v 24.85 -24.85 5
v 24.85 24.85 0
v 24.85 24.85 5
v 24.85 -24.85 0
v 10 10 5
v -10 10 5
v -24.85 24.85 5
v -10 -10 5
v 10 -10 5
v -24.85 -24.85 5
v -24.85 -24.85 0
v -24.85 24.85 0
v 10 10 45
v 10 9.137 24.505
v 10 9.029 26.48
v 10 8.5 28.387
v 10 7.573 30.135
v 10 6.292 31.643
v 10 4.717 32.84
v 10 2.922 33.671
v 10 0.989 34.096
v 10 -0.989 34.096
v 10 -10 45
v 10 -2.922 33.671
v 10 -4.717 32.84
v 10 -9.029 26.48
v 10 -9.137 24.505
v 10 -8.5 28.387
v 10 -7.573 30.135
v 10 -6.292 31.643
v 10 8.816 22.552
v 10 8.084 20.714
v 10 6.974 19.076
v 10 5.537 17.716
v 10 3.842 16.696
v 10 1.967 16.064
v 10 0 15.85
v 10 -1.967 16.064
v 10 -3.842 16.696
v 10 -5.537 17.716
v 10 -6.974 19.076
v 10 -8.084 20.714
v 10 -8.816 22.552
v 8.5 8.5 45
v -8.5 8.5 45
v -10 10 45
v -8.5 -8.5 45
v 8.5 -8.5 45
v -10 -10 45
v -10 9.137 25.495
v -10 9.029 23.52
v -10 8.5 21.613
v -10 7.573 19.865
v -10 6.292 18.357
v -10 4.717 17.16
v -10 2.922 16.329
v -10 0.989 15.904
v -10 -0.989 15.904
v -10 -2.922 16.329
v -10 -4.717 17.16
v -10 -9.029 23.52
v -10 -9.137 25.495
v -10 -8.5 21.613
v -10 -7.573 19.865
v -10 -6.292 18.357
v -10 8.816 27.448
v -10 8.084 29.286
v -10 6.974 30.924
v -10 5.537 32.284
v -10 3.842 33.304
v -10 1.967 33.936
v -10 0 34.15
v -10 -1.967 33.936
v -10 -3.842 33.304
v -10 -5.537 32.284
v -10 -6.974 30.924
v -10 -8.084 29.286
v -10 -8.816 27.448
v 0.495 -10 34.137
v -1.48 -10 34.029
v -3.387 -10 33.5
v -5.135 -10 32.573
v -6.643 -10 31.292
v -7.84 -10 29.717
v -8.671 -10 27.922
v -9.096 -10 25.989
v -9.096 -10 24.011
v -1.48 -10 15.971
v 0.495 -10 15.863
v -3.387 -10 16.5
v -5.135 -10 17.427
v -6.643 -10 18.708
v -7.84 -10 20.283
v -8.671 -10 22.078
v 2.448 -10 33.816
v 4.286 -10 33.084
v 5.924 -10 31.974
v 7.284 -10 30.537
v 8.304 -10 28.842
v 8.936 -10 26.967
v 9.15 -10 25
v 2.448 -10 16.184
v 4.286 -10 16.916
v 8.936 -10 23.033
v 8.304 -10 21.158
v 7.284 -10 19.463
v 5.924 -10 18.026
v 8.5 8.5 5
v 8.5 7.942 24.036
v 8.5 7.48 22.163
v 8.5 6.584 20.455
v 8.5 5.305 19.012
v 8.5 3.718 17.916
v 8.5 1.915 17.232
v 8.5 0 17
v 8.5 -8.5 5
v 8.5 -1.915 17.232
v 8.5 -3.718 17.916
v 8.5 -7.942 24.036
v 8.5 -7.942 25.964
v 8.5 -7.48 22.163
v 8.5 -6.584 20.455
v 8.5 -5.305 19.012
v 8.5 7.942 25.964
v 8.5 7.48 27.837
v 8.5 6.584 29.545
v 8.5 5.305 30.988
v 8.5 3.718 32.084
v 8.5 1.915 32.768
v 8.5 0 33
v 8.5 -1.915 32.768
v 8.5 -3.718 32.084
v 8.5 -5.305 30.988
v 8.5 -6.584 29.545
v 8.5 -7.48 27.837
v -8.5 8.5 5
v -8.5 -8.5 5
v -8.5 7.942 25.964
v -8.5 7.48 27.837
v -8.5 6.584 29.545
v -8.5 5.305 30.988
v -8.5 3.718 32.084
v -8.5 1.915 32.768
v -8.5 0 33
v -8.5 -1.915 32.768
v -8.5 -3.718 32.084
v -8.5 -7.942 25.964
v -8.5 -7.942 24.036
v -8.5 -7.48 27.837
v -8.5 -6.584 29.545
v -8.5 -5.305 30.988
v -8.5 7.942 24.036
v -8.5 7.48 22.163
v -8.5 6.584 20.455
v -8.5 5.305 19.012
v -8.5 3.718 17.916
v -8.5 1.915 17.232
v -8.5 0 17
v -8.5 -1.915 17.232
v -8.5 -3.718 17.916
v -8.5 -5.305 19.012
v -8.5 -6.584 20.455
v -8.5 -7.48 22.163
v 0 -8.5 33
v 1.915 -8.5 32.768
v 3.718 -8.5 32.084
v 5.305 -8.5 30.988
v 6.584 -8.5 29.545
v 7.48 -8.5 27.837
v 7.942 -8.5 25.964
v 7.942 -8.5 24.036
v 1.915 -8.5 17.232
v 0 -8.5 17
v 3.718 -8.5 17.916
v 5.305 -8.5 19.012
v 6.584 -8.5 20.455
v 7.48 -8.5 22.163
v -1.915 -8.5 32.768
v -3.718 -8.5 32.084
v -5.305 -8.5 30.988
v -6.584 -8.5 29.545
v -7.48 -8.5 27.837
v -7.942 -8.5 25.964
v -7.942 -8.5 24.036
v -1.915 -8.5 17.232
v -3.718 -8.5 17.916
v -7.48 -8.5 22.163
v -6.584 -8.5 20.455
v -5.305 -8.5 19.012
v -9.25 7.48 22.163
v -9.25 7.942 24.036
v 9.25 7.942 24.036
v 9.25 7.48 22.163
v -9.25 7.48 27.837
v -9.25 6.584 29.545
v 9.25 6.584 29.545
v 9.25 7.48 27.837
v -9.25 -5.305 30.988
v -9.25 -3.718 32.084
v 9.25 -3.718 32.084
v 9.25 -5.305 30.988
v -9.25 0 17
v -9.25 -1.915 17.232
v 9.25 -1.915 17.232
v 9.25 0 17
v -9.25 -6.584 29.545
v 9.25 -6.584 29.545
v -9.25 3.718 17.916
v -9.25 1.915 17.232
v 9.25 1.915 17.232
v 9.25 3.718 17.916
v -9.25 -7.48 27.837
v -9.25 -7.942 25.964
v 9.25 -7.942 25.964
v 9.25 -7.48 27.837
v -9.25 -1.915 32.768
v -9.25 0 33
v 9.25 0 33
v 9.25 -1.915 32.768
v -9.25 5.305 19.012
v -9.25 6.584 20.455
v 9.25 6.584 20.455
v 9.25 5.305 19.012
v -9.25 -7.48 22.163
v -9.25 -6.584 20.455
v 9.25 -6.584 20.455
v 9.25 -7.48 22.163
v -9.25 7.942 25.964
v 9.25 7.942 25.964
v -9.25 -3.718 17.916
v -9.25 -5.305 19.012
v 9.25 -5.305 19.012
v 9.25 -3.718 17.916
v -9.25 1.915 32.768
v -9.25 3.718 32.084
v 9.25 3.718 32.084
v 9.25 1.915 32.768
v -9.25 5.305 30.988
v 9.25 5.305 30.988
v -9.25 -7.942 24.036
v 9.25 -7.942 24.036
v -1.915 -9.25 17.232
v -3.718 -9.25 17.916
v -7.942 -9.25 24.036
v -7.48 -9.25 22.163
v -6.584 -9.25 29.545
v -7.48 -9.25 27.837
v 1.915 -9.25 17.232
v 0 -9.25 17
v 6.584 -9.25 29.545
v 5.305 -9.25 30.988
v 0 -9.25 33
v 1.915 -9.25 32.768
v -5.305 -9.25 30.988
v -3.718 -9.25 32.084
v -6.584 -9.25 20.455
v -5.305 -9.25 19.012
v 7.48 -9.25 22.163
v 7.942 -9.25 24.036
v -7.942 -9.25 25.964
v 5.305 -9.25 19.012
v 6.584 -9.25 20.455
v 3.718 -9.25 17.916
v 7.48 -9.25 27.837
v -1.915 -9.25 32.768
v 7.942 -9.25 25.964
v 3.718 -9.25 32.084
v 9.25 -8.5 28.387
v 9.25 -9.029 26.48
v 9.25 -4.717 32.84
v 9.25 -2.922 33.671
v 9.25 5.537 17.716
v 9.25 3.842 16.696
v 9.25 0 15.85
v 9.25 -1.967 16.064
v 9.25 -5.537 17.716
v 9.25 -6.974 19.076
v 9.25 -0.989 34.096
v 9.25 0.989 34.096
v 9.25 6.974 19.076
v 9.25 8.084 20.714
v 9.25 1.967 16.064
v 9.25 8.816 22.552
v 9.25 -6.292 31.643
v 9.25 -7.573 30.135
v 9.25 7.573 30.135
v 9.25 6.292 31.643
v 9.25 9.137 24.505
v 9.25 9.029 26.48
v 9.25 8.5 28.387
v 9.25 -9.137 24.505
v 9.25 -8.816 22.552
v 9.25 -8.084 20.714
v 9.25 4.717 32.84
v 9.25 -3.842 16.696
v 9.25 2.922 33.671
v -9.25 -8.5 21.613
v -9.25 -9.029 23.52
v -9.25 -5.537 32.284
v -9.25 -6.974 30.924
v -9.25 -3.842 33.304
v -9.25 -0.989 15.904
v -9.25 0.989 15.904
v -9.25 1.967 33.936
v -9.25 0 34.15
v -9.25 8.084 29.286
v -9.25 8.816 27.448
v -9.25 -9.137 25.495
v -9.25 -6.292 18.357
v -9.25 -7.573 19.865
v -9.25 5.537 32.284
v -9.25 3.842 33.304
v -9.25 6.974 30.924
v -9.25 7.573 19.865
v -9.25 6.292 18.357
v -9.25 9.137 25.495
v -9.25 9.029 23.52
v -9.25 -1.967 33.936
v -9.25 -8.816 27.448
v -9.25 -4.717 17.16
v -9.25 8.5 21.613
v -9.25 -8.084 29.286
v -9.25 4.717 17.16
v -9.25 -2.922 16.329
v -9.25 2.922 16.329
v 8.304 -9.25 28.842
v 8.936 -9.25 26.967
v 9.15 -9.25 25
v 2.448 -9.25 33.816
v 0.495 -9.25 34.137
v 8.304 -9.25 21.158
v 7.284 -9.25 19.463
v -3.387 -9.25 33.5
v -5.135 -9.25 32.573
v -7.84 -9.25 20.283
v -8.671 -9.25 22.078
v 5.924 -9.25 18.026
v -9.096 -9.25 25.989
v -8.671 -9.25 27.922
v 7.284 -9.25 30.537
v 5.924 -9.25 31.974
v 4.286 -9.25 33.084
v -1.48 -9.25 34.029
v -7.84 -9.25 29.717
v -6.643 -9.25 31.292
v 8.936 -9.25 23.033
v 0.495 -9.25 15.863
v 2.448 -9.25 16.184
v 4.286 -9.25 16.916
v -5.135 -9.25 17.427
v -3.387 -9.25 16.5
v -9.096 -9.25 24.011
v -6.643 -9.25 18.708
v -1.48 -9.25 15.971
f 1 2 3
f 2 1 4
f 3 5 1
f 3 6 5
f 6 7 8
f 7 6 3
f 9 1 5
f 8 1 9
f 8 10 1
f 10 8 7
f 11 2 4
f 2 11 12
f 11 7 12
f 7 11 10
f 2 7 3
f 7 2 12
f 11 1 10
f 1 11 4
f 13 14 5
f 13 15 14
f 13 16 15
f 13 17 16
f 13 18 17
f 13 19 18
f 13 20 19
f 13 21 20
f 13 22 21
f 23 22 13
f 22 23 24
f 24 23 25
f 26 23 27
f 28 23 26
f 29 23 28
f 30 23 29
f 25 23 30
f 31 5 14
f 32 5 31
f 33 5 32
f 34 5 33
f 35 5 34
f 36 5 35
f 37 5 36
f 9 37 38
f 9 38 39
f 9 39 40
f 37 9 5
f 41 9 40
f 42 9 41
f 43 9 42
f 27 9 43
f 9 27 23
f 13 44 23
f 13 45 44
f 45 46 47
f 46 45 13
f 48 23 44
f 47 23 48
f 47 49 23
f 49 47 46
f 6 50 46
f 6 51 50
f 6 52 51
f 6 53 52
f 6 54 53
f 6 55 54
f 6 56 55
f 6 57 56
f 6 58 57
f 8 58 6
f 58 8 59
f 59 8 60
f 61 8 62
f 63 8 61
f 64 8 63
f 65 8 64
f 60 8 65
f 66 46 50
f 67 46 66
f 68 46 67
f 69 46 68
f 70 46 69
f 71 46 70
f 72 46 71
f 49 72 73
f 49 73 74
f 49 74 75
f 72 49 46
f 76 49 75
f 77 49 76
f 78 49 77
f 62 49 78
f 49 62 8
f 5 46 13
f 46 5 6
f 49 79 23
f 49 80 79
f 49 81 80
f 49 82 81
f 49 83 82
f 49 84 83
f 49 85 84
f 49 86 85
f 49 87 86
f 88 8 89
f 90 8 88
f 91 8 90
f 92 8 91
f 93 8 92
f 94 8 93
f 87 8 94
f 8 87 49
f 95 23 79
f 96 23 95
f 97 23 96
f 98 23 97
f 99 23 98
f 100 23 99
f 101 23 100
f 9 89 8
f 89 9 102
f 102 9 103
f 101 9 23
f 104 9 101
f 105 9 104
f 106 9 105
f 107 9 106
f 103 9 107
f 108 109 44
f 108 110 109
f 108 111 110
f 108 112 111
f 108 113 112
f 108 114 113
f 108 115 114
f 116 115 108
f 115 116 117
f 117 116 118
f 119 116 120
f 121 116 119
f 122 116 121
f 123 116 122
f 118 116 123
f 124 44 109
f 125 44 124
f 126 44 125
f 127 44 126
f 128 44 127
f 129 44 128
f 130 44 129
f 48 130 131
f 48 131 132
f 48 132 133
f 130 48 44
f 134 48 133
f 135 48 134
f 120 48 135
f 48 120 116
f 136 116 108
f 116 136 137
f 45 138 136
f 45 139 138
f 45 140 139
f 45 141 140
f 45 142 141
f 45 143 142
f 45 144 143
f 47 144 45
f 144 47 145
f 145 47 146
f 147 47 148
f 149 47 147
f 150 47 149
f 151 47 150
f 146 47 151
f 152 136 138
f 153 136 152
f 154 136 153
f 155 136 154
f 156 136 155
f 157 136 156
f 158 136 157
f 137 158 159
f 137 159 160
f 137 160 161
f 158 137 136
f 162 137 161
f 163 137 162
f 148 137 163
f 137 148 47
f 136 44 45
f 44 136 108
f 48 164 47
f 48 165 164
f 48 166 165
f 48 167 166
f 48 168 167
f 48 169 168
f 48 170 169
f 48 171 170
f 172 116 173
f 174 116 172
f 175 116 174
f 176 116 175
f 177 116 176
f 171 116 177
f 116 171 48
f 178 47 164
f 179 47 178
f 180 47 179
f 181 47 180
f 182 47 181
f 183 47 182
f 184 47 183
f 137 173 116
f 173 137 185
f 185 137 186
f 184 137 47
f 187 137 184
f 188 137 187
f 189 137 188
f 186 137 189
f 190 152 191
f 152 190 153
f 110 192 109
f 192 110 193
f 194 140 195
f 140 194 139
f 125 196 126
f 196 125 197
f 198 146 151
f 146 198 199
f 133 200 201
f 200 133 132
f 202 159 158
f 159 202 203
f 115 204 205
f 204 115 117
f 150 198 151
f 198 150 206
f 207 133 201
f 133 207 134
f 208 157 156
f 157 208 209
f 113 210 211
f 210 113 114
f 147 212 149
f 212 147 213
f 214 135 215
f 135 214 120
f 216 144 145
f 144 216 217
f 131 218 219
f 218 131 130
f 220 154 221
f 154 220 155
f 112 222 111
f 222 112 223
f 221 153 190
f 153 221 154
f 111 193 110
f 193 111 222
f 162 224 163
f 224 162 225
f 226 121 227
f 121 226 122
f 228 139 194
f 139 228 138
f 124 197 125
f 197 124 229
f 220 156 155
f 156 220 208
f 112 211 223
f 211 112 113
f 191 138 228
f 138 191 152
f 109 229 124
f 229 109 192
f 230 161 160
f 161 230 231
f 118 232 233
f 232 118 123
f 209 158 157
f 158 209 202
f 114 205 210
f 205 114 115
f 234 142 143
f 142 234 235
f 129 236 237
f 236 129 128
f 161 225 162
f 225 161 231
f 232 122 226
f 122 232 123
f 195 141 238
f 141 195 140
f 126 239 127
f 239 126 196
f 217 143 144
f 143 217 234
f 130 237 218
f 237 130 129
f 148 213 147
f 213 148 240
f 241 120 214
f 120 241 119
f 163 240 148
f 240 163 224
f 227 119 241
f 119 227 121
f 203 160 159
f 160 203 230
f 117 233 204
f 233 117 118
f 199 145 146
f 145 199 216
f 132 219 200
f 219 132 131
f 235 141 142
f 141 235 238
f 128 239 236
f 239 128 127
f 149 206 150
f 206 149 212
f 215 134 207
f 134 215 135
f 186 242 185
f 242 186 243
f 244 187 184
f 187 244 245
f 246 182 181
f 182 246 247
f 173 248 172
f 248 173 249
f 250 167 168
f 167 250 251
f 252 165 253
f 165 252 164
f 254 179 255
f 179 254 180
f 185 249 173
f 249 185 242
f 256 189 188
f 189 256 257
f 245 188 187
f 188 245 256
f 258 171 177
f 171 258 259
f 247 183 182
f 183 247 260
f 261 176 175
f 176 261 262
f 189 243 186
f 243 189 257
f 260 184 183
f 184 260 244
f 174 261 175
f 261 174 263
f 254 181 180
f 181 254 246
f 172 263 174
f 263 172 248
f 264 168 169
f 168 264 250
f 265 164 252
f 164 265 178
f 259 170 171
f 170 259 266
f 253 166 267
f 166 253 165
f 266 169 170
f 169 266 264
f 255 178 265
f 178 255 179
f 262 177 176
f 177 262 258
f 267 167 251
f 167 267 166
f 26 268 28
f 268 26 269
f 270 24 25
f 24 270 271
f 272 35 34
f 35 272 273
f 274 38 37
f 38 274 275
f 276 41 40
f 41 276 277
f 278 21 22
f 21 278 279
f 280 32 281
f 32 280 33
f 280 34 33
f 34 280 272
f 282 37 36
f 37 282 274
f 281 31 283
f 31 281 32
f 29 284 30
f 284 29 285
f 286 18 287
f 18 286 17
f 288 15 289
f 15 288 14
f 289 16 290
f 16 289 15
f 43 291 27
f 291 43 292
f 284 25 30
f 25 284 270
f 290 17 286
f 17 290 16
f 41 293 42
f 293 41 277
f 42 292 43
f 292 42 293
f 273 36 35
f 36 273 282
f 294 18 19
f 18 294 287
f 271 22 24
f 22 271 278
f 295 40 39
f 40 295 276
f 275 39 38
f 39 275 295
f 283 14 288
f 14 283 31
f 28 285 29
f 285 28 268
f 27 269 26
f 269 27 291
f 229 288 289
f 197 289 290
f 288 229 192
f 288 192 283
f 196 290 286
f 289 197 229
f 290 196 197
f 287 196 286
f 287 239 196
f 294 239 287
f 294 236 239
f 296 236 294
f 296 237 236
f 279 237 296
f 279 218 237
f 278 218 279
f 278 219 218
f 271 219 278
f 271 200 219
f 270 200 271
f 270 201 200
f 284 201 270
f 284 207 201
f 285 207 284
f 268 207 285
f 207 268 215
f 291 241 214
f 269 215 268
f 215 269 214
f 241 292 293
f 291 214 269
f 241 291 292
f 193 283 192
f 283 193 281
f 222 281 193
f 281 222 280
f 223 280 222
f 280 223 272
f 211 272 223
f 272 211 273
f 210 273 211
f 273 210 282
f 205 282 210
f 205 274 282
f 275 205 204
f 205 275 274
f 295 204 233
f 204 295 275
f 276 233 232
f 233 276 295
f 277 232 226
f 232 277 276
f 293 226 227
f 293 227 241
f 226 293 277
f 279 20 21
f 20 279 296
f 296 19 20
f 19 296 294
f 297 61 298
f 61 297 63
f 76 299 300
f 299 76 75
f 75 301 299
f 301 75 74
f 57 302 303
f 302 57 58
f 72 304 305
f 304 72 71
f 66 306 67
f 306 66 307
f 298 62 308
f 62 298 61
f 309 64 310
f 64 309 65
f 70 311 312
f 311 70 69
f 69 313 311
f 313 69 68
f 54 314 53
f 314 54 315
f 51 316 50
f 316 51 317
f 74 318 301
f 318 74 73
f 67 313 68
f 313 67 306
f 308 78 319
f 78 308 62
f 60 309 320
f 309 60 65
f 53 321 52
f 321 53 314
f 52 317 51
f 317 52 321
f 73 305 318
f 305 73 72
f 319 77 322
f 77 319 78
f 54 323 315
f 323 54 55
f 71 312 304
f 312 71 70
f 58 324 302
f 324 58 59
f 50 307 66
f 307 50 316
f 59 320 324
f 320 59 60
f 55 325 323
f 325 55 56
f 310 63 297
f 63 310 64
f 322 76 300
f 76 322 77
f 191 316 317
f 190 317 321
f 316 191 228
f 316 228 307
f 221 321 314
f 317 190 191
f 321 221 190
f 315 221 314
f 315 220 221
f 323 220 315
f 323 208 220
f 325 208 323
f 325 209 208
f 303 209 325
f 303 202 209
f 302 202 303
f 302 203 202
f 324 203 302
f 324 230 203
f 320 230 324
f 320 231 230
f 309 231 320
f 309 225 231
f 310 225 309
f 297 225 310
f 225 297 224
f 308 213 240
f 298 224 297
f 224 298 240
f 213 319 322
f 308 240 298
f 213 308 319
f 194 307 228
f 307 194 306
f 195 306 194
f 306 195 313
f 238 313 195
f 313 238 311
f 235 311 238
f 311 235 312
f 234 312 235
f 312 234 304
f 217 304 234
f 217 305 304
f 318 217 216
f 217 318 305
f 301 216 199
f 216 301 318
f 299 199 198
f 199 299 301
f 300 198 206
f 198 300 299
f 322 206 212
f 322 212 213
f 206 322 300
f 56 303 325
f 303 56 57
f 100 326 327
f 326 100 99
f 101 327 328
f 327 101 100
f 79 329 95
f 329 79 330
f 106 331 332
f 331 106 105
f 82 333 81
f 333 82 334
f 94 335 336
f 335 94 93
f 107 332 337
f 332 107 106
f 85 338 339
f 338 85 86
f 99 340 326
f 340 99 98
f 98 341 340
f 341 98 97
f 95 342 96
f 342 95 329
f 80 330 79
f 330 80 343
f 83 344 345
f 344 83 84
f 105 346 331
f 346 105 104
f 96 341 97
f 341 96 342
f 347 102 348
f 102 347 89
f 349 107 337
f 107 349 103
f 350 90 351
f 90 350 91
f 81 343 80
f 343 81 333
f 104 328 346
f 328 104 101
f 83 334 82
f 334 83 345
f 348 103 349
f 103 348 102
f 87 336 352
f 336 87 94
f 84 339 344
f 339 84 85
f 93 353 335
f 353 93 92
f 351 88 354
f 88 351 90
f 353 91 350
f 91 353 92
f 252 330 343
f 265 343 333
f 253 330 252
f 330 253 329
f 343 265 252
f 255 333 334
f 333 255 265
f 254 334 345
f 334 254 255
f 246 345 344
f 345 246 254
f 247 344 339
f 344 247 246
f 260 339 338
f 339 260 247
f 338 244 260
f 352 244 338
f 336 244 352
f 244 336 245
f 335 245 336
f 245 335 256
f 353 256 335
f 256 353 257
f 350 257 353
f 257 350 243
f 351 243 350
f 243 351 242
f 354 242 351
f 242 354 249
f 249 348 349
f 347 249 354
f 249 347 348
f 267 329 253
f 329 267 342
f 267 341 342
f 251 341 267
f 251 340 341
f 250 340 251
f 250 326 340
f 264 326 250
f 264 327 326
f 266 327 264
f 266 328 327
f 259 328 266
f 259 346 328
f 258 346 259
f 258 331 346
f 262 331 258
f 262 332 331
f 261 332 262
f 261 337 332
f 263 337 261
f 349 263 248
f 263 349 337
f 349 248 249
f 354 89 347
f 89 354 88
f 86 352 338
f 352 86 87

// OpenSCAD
//Sample chamber

FDM_offset = 0.15;


module SampleChamber (){
    difference(){
    union(){
        translate([0,0,5/2])
            cube([50-2*FDM_offset,50-2*FDM_offset,5], center=true);
        translate([0,0,50/2])
            cube([20,20,40], center=true);
        }
    translate([0,0,45/2+5])
        cube([17,17,45], center=true);      

    translate([0,0,25])      
    rotate([0,90,0])
        cylinder(d=16, h=40, center=true);
    translate([0,-10,25])
    rotate([0,90,90])
        cylinder(d=16, h=20, center=true);

    rotate([0,90,0])
    translate([-25,0,20/2+5-0.75])   
        cylinder(d=18+2*FDM_offset, h=10, center=true);
    rotate([0,-90,0])
    translate([25,0,20/2+5-0.75])   
        cylinder(d=18+2*FDM_offset, h=10, center=true);
    rotate([90,0,0])
    translate([0,25,20/2+5-0.75])   
        cylinder(d=18+2*FDM_offset, h=10, center=true);          
    }
}

SampleChamber();
